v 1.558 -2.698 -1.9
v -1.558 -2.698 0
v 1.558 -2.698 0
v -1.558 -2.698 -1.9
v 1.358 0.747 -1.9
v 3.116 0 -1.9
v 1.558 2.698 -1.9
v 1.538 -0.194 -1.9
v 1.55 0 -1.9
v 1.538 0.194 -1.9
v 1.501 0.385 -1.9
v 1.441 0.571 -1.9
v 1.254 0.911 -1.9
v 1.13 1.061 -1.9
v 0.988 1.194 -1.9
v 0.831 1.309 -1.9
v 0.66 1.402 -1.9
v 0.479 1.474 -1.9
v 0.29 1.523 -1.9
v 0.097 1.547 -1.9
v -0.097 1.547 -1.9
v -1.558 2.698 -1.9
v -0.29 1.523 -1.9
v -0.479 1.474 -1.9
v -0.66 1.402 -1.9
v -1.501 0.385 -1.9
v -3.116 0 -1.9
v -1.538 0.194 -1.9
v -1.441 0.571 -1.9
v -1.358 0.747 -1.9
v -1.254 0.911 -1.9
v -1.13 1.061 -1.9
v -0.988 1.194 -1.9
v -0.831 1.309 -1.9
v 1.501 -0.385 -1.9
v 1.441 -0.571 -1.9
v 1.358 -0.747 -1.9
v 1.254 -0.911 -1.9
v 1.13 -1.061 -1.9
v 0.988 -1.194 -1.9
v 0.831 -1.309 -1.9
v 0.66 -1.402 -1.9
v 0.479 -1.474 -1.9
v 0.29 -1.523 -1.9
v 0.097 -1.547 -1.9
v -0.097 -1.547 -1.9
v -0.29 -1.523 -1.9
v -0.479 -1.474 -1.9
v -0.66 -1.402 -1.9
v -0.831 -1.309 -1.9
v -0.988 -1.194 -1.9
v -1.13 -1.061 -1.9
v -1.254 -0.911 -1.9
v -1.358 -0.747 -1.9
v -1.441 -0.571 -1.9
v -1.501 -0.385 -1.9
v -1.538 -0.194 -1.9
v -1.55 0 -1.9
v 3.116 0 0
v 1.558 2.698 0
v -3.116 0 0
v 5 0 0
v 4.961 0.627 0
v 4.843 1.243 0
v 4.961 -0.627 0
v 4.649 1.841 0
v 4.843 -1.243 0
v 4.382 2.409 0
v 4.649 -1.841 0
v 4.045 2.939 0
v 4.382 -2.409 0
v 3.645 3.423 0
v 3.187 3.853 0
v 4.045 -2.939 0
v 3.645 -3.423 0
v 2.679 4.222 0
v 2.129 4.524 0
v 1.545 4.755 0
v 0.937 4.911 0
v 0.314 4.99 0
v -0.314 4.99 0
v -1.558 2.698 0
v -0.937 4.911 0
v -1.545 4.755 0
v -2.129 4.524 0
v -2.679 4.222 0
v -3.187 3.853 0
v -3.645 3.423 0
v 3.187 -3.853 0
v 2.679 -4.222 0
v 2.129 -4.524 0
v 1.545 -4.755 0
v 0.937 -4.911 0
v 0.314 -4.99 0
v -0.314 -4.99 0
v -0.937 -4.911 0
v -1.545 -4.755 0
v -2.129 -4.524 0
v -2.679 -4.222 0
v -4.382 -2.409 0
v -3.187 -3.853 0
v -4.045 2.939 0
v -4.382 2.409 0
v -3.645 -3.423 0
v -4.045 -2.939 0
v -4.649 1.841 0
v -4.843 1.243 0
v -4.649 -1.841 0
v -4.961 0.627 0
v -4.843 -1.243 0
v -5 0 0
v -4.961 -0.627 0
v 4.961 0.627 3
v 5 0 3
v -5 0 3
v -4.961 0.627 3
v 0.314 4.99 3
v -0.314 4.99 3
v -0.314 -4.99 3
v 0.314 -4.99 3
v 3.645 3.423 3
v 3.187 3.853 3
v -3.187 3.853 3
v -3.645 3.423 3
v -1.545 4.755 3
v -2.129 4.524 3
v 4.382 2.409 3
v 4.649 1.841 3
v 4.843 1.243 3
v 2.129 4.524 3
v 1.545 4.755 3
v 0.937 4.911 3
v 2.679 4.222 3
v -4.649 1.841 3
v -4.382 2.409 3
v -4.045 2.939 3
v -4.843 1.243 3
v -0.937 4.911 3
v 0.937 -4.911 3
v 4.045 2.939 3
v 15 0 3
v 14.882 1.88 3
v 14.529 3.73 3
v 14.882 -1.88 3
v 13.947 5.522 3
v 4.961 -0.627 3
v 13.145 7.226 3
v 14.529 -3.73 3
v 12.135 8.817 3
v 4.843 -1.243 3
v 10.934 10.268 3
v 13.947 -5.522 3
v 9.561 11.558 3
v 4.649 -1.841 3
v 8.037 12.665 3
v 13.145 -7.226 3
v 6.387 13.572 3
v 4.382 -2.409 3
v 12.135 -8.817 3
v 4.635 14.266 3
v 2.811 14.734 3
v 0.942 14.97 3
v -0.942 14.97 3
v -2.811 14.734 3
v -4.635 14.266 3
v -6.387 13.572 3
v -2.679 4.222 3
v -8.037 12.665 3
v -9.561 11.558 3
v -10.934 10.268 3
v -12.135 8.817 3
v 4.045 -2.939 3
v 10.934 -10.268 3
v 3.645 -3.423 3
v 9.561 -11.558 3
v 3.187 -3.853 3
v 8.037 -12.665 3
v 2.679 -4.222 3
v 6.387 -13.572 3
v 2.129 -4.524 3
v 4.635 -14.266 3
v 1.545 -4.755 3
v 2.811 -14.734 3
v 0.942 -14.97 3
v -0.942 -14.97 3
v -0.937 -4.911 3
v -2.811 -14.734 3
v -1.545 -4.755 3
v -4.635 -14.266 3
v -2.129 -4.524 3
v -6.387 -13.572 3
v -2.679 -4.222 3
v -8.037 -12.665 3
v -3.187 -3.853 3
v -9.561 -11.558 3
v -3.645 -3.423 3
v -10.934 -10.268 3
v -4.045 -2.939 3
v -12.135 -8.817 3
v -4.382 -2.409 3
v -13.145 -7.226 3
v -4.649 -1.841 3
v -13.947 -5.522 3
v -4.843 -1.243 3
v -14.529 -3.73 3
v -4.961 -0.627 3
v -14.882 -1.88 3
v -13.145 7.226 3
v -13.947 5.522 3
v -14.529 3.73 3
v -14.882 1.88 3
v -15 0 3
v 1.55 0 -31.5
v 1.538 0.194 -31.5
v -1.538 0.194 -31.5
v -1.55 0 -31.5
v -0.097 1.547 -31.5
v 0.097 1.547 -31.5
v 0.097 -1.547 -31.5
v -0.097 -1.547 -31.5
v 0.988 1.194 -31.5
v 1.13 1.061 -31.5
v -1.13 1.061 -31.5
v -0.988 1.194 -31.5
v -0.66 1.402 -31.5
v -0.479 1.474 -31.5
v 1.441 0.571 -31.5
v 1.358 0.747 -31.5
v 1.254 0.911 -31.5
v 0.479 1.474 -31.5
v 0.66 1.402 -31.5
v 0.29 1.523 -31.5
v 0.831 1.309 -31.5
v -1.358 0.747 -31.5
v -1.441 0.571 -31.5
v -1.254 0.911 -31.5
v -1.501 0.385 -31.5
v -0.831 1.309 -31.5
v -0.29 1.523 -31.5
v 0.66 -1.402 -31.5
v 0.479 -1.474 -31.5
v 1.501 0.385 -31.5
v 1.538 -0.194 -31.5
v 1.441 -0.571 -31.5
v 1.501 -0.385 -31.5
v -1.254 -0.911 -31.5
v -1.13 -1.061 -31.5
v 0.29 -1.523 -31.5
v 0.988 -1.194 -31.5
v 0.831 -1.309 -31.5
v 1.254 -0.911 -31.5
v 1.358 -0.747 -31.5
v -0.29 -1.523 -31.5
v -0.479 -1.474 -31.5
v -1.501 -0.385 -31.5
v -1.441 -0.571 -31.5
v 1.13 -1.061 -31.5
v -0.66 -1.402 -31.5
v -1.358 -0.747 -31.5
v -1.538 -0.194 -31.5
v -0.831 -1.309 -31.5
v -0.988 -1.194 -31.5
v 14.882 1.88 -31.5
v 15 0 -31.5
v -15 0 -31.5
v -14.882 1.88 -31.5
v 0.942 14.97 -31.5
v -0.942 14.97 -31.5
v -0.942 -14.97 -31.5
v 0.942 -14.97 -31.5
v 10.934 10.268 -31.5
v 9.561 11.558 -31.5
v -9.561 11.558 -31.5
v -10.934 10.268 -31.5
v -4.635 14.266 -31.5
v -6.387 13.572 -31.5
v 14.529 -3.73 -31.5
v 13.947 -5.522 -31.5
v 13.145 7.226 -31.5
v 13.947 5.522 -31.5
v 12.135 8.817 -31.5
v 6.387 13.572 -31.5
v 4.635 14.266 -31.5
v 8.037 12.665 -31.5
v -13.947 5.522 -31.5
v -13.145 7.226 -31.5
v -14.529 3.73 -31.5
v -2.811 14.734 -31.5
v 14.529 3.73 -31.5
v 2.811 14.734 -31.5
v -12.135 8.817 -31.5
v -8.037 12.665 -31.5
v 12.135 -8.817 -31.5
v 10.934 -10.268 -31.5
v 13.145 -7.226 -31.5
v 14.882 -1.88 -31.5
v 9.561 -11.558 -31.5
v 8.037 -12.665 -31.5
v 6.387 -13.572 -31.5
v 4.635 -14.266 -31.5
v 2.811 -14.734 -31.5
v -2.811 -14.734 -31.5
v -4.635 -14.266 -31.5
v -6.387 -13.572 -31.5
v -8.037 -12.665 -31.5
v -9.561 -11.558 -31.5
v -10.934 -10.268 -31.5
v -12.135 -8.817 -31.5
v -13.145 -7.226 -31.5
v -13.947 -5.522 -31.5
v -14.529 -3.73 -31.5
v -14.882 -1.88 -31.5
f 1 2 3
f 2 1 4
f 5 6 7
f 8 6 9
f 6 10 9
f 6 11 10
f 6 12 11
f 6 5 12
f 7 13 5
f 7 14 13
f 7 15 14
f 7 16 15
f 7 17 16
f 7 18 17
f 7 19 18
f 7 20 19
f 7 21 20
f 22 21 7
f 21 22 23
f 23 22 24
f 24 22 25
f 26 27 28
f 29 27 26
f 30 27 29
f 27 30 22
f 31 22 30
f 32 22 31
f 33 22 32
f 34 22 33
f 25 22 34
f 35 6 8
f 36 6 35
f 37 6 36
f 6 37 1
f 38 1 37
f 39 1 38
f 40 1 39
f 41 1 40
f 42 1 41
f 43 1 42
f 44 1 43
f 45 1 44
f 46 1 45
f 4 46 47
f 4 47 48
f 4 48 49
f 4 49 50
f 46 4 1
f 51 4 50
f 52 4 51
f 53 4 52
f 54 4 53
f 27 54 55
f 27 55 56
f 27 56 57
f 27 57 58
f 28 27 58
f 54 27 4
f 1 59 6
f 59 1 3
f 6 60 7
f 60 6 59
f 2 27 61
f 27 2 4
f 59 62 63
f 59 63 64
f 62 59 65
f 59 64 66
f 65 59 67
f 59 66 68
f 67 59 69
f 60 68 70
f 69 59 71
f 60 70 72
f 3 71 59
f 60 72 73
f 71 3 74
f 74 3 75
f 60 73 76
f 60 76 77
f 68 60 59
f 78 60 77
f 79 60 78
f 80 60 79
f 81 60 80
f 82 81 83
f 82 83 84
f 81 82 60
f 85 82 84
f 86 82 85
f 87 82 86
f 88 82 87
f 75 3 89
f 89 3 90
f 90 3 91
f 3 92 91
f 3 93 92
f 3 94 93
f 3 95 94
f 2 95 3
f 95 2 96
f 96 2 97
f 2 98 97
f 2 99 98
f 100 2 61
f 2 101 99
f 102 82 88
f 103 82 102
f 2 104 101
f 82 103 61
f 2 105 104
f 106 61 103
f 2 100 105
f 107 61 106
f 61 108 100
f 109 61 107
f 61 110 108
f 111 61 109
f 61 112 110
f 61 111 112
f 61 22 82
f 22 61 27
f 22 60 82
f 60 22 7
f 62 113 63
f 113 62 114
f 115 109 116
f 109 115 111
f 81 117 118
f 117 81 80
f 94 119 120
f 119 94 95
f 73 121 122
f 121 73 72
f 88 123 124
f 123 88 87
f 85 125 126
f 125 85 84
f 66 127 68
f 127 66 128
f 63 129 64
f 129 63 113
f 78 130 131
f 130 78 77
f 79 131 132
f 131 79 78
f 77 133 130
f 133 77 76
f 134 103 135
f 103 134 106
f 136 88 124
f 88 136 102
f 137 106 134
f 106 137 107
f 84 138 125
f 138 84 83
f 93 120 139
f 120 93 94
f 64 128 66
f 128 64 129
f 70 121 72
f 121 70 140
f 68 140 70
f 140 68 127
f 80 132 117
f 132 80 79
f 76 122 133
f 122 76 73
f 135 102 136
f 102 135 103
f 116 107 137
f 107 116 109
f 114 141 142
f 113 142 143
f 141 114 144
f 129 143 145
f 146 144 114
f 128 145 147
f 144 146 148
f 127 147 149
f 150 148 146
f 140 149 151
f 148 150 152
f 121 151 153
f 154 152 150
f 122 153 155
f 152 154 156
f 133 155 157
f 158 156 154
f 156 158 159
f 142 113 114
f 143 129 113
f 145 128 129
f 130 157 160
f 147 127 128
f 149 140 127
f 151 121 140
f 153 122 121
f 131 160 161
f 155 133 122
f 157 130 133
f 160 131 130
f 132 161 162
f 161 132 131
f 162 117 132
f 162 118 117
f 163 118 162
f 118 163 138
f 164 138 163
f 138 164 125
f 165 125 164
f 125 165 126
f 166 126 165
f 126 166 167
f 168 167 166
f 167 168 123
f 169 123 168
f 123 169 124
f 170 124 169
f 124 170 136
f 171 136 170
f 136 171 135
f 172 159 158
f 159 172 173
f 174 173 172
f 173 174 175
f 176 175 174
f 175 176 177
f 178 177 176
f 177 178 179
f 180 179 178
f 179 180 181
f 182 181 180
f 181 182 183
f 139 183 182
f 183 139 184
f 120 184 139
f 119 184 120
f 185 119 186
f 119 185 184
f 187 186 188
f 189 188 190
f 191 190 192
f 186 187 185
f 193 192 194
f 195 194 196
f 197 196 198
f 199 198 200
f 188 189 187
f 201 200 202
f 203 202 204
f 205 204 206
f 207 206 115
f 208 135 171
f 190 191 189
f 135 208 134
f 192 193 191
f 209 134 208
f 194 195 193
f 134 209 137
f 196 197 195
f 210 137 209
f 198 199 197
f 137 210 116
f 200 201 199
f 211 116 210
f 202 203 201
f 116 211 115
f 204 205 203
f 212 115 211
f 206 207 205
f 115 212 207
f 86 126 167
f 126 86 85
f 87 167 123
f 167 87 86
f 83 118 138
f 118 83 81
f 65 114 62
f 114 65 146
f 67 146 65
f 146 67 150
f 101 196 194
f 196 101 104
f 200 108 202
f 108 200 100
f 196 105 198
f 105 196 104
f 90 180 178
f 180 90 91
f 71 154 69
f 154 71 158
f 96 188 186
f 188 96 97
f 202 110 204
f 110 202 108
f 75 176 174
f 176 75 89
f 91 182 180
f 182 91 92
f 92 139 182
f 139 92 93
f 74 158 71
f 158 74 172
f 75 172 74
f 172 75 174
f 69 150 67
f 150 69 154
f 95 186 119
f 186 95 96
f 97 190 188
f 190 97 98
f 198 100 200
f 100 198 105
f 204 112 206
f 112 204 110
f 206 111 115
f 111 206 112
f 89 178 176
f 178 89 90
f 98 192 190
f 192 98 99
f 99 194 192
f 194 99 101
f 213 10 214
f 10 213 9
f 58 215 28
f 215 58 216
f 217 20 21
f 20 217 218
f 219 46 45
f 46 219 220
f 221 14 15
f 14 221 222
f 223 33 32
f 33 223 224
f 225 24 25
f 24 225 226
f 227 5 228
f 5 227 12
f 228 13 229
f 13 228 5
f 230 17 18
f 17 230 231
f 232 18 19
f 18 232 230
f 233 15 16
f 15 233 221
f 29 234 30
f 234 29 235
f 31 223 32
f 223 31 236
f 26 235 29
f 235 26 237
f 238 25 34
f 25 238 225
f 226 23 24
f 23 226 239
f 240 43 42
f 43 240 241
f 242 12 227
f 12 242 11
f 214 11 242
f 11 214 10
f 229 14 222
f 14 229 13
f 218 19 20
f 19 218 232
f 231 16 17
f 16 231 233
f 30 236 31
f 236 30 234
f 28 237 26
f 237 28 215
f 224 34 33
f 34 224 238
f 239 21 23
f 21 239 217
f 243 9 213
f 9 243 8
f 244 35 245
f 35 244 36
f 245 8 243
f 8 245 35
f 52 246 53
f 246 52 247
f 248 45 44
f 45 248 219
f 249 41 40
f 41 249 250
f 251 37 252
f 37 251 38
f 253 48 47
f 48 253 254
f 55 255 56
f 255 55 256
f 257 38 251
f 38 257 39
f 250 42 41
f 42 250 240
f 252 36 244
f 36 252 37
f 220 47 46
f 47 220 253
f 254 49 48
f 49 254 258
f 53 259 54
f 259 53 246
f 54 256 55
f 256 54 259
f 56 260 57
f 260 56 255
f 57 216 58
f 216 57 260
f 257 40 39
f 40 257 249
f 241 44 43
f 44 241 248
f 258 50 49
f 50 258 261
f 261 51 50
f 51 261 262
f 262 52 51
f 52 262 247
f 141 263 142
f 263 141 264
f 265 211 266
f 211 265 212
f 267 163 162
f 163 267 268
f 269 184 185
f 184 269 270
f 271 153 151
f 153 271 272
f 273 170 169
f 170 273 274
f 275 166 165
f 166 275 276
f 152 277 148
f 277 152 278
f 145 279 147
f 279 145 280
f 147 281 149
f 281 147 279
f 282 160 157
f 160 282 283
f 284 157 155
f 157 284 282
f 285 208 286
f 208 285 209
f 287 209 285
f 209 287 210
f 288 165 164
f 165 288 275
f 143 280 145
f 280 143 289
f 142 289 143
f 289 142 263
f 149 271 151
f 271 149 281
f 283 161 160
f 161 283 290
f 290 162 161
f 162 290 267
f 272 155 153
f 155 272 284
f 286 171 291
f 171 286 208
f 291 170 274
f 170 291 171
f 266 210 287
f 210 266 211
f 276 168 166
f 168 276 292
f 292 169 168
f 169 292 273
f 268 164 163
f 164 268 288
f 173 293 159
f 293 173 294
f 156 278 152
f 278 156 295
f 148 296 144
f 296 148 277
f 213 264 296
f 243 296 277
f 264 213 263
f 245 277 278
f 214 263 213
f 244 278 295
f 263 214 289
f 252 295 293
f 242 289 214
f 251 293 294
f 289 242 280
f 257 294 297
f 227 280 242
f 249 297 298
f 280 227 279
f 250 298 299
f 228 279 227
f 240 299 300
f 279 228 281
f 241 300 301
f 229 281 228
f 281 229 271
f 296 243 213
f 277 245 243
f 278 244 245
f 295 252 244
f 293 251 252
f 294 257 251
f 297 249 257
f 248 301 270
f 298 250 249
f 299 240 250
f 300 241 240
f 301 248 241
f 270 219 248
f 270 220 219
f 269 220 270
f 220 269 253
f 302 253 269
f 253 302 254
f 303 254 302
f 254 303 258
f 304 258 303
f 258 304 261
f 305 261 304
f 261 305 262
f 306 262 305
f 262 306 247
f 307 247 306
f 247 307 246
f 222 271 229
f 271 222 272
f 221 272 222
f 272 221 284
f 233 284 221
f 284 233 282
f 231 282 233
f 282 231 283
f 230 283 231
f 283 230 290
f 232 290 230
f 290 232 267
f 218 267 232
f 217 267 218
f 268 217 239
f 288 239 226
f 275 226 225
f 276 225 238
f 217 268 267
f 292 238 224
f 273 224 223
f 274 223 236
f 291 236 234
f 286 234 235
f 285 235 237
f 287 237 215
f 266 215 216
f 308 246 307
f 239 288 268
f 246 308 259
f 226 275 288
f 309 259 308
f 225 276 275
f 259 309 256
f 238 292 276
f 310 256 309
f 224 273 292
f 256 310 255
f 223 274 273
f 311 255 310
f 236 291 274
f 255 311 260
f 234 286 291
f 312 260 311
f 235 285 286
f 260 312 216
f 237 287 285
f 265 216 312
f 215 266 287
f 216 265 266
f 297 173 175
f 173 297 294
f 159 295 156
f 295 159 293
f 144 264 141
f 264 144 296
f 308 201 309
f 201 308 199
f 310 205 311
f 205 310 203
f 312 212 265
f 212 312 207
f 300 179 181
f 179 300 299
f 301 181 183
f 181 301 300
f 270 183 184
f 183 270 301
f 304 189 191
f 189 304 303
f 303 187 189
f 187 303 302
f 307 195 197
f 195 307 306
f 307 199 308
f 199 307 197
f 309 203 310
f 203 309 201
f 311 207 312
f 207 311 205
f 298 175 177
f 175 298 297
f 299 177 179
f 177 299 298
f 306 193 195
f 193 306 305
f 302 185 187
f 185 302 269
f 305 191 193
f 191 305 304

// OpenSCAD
$fn = 50;

difference() {
	union() {
		translate(v = [0, 0, -31.5]) {
			cylinder(h = 34.5, r = 15.0);
		}
	}
	union() {
		translate(v = [0, 0, 0]) {
			rotate(a = [0, 0, 0]) {
				difference() {
					union() {
						translate(v = [0, 0, -1.9]) {
							linear_extrude(height = 1.9) {
								polygon(points = [[3.1158, 0.0], [1.5579000000000005, 2.698361953111554], [-1.5578999999999994, 2.6983619531115544], [-3.1158, 3.815754496783323e-16], [-1.5579000000000014, -2.6983619531115535], [1.557899999999998, -2.6983619531115552]]);
							}
						}
					}
					union();
				}
			}
		}
		#cylinder(h = 3, r = 5.0);
		#translate(v = [0, 0, -100.0]) {
			cylinder(h = 200, r = 1.55);
		}
	}
}
